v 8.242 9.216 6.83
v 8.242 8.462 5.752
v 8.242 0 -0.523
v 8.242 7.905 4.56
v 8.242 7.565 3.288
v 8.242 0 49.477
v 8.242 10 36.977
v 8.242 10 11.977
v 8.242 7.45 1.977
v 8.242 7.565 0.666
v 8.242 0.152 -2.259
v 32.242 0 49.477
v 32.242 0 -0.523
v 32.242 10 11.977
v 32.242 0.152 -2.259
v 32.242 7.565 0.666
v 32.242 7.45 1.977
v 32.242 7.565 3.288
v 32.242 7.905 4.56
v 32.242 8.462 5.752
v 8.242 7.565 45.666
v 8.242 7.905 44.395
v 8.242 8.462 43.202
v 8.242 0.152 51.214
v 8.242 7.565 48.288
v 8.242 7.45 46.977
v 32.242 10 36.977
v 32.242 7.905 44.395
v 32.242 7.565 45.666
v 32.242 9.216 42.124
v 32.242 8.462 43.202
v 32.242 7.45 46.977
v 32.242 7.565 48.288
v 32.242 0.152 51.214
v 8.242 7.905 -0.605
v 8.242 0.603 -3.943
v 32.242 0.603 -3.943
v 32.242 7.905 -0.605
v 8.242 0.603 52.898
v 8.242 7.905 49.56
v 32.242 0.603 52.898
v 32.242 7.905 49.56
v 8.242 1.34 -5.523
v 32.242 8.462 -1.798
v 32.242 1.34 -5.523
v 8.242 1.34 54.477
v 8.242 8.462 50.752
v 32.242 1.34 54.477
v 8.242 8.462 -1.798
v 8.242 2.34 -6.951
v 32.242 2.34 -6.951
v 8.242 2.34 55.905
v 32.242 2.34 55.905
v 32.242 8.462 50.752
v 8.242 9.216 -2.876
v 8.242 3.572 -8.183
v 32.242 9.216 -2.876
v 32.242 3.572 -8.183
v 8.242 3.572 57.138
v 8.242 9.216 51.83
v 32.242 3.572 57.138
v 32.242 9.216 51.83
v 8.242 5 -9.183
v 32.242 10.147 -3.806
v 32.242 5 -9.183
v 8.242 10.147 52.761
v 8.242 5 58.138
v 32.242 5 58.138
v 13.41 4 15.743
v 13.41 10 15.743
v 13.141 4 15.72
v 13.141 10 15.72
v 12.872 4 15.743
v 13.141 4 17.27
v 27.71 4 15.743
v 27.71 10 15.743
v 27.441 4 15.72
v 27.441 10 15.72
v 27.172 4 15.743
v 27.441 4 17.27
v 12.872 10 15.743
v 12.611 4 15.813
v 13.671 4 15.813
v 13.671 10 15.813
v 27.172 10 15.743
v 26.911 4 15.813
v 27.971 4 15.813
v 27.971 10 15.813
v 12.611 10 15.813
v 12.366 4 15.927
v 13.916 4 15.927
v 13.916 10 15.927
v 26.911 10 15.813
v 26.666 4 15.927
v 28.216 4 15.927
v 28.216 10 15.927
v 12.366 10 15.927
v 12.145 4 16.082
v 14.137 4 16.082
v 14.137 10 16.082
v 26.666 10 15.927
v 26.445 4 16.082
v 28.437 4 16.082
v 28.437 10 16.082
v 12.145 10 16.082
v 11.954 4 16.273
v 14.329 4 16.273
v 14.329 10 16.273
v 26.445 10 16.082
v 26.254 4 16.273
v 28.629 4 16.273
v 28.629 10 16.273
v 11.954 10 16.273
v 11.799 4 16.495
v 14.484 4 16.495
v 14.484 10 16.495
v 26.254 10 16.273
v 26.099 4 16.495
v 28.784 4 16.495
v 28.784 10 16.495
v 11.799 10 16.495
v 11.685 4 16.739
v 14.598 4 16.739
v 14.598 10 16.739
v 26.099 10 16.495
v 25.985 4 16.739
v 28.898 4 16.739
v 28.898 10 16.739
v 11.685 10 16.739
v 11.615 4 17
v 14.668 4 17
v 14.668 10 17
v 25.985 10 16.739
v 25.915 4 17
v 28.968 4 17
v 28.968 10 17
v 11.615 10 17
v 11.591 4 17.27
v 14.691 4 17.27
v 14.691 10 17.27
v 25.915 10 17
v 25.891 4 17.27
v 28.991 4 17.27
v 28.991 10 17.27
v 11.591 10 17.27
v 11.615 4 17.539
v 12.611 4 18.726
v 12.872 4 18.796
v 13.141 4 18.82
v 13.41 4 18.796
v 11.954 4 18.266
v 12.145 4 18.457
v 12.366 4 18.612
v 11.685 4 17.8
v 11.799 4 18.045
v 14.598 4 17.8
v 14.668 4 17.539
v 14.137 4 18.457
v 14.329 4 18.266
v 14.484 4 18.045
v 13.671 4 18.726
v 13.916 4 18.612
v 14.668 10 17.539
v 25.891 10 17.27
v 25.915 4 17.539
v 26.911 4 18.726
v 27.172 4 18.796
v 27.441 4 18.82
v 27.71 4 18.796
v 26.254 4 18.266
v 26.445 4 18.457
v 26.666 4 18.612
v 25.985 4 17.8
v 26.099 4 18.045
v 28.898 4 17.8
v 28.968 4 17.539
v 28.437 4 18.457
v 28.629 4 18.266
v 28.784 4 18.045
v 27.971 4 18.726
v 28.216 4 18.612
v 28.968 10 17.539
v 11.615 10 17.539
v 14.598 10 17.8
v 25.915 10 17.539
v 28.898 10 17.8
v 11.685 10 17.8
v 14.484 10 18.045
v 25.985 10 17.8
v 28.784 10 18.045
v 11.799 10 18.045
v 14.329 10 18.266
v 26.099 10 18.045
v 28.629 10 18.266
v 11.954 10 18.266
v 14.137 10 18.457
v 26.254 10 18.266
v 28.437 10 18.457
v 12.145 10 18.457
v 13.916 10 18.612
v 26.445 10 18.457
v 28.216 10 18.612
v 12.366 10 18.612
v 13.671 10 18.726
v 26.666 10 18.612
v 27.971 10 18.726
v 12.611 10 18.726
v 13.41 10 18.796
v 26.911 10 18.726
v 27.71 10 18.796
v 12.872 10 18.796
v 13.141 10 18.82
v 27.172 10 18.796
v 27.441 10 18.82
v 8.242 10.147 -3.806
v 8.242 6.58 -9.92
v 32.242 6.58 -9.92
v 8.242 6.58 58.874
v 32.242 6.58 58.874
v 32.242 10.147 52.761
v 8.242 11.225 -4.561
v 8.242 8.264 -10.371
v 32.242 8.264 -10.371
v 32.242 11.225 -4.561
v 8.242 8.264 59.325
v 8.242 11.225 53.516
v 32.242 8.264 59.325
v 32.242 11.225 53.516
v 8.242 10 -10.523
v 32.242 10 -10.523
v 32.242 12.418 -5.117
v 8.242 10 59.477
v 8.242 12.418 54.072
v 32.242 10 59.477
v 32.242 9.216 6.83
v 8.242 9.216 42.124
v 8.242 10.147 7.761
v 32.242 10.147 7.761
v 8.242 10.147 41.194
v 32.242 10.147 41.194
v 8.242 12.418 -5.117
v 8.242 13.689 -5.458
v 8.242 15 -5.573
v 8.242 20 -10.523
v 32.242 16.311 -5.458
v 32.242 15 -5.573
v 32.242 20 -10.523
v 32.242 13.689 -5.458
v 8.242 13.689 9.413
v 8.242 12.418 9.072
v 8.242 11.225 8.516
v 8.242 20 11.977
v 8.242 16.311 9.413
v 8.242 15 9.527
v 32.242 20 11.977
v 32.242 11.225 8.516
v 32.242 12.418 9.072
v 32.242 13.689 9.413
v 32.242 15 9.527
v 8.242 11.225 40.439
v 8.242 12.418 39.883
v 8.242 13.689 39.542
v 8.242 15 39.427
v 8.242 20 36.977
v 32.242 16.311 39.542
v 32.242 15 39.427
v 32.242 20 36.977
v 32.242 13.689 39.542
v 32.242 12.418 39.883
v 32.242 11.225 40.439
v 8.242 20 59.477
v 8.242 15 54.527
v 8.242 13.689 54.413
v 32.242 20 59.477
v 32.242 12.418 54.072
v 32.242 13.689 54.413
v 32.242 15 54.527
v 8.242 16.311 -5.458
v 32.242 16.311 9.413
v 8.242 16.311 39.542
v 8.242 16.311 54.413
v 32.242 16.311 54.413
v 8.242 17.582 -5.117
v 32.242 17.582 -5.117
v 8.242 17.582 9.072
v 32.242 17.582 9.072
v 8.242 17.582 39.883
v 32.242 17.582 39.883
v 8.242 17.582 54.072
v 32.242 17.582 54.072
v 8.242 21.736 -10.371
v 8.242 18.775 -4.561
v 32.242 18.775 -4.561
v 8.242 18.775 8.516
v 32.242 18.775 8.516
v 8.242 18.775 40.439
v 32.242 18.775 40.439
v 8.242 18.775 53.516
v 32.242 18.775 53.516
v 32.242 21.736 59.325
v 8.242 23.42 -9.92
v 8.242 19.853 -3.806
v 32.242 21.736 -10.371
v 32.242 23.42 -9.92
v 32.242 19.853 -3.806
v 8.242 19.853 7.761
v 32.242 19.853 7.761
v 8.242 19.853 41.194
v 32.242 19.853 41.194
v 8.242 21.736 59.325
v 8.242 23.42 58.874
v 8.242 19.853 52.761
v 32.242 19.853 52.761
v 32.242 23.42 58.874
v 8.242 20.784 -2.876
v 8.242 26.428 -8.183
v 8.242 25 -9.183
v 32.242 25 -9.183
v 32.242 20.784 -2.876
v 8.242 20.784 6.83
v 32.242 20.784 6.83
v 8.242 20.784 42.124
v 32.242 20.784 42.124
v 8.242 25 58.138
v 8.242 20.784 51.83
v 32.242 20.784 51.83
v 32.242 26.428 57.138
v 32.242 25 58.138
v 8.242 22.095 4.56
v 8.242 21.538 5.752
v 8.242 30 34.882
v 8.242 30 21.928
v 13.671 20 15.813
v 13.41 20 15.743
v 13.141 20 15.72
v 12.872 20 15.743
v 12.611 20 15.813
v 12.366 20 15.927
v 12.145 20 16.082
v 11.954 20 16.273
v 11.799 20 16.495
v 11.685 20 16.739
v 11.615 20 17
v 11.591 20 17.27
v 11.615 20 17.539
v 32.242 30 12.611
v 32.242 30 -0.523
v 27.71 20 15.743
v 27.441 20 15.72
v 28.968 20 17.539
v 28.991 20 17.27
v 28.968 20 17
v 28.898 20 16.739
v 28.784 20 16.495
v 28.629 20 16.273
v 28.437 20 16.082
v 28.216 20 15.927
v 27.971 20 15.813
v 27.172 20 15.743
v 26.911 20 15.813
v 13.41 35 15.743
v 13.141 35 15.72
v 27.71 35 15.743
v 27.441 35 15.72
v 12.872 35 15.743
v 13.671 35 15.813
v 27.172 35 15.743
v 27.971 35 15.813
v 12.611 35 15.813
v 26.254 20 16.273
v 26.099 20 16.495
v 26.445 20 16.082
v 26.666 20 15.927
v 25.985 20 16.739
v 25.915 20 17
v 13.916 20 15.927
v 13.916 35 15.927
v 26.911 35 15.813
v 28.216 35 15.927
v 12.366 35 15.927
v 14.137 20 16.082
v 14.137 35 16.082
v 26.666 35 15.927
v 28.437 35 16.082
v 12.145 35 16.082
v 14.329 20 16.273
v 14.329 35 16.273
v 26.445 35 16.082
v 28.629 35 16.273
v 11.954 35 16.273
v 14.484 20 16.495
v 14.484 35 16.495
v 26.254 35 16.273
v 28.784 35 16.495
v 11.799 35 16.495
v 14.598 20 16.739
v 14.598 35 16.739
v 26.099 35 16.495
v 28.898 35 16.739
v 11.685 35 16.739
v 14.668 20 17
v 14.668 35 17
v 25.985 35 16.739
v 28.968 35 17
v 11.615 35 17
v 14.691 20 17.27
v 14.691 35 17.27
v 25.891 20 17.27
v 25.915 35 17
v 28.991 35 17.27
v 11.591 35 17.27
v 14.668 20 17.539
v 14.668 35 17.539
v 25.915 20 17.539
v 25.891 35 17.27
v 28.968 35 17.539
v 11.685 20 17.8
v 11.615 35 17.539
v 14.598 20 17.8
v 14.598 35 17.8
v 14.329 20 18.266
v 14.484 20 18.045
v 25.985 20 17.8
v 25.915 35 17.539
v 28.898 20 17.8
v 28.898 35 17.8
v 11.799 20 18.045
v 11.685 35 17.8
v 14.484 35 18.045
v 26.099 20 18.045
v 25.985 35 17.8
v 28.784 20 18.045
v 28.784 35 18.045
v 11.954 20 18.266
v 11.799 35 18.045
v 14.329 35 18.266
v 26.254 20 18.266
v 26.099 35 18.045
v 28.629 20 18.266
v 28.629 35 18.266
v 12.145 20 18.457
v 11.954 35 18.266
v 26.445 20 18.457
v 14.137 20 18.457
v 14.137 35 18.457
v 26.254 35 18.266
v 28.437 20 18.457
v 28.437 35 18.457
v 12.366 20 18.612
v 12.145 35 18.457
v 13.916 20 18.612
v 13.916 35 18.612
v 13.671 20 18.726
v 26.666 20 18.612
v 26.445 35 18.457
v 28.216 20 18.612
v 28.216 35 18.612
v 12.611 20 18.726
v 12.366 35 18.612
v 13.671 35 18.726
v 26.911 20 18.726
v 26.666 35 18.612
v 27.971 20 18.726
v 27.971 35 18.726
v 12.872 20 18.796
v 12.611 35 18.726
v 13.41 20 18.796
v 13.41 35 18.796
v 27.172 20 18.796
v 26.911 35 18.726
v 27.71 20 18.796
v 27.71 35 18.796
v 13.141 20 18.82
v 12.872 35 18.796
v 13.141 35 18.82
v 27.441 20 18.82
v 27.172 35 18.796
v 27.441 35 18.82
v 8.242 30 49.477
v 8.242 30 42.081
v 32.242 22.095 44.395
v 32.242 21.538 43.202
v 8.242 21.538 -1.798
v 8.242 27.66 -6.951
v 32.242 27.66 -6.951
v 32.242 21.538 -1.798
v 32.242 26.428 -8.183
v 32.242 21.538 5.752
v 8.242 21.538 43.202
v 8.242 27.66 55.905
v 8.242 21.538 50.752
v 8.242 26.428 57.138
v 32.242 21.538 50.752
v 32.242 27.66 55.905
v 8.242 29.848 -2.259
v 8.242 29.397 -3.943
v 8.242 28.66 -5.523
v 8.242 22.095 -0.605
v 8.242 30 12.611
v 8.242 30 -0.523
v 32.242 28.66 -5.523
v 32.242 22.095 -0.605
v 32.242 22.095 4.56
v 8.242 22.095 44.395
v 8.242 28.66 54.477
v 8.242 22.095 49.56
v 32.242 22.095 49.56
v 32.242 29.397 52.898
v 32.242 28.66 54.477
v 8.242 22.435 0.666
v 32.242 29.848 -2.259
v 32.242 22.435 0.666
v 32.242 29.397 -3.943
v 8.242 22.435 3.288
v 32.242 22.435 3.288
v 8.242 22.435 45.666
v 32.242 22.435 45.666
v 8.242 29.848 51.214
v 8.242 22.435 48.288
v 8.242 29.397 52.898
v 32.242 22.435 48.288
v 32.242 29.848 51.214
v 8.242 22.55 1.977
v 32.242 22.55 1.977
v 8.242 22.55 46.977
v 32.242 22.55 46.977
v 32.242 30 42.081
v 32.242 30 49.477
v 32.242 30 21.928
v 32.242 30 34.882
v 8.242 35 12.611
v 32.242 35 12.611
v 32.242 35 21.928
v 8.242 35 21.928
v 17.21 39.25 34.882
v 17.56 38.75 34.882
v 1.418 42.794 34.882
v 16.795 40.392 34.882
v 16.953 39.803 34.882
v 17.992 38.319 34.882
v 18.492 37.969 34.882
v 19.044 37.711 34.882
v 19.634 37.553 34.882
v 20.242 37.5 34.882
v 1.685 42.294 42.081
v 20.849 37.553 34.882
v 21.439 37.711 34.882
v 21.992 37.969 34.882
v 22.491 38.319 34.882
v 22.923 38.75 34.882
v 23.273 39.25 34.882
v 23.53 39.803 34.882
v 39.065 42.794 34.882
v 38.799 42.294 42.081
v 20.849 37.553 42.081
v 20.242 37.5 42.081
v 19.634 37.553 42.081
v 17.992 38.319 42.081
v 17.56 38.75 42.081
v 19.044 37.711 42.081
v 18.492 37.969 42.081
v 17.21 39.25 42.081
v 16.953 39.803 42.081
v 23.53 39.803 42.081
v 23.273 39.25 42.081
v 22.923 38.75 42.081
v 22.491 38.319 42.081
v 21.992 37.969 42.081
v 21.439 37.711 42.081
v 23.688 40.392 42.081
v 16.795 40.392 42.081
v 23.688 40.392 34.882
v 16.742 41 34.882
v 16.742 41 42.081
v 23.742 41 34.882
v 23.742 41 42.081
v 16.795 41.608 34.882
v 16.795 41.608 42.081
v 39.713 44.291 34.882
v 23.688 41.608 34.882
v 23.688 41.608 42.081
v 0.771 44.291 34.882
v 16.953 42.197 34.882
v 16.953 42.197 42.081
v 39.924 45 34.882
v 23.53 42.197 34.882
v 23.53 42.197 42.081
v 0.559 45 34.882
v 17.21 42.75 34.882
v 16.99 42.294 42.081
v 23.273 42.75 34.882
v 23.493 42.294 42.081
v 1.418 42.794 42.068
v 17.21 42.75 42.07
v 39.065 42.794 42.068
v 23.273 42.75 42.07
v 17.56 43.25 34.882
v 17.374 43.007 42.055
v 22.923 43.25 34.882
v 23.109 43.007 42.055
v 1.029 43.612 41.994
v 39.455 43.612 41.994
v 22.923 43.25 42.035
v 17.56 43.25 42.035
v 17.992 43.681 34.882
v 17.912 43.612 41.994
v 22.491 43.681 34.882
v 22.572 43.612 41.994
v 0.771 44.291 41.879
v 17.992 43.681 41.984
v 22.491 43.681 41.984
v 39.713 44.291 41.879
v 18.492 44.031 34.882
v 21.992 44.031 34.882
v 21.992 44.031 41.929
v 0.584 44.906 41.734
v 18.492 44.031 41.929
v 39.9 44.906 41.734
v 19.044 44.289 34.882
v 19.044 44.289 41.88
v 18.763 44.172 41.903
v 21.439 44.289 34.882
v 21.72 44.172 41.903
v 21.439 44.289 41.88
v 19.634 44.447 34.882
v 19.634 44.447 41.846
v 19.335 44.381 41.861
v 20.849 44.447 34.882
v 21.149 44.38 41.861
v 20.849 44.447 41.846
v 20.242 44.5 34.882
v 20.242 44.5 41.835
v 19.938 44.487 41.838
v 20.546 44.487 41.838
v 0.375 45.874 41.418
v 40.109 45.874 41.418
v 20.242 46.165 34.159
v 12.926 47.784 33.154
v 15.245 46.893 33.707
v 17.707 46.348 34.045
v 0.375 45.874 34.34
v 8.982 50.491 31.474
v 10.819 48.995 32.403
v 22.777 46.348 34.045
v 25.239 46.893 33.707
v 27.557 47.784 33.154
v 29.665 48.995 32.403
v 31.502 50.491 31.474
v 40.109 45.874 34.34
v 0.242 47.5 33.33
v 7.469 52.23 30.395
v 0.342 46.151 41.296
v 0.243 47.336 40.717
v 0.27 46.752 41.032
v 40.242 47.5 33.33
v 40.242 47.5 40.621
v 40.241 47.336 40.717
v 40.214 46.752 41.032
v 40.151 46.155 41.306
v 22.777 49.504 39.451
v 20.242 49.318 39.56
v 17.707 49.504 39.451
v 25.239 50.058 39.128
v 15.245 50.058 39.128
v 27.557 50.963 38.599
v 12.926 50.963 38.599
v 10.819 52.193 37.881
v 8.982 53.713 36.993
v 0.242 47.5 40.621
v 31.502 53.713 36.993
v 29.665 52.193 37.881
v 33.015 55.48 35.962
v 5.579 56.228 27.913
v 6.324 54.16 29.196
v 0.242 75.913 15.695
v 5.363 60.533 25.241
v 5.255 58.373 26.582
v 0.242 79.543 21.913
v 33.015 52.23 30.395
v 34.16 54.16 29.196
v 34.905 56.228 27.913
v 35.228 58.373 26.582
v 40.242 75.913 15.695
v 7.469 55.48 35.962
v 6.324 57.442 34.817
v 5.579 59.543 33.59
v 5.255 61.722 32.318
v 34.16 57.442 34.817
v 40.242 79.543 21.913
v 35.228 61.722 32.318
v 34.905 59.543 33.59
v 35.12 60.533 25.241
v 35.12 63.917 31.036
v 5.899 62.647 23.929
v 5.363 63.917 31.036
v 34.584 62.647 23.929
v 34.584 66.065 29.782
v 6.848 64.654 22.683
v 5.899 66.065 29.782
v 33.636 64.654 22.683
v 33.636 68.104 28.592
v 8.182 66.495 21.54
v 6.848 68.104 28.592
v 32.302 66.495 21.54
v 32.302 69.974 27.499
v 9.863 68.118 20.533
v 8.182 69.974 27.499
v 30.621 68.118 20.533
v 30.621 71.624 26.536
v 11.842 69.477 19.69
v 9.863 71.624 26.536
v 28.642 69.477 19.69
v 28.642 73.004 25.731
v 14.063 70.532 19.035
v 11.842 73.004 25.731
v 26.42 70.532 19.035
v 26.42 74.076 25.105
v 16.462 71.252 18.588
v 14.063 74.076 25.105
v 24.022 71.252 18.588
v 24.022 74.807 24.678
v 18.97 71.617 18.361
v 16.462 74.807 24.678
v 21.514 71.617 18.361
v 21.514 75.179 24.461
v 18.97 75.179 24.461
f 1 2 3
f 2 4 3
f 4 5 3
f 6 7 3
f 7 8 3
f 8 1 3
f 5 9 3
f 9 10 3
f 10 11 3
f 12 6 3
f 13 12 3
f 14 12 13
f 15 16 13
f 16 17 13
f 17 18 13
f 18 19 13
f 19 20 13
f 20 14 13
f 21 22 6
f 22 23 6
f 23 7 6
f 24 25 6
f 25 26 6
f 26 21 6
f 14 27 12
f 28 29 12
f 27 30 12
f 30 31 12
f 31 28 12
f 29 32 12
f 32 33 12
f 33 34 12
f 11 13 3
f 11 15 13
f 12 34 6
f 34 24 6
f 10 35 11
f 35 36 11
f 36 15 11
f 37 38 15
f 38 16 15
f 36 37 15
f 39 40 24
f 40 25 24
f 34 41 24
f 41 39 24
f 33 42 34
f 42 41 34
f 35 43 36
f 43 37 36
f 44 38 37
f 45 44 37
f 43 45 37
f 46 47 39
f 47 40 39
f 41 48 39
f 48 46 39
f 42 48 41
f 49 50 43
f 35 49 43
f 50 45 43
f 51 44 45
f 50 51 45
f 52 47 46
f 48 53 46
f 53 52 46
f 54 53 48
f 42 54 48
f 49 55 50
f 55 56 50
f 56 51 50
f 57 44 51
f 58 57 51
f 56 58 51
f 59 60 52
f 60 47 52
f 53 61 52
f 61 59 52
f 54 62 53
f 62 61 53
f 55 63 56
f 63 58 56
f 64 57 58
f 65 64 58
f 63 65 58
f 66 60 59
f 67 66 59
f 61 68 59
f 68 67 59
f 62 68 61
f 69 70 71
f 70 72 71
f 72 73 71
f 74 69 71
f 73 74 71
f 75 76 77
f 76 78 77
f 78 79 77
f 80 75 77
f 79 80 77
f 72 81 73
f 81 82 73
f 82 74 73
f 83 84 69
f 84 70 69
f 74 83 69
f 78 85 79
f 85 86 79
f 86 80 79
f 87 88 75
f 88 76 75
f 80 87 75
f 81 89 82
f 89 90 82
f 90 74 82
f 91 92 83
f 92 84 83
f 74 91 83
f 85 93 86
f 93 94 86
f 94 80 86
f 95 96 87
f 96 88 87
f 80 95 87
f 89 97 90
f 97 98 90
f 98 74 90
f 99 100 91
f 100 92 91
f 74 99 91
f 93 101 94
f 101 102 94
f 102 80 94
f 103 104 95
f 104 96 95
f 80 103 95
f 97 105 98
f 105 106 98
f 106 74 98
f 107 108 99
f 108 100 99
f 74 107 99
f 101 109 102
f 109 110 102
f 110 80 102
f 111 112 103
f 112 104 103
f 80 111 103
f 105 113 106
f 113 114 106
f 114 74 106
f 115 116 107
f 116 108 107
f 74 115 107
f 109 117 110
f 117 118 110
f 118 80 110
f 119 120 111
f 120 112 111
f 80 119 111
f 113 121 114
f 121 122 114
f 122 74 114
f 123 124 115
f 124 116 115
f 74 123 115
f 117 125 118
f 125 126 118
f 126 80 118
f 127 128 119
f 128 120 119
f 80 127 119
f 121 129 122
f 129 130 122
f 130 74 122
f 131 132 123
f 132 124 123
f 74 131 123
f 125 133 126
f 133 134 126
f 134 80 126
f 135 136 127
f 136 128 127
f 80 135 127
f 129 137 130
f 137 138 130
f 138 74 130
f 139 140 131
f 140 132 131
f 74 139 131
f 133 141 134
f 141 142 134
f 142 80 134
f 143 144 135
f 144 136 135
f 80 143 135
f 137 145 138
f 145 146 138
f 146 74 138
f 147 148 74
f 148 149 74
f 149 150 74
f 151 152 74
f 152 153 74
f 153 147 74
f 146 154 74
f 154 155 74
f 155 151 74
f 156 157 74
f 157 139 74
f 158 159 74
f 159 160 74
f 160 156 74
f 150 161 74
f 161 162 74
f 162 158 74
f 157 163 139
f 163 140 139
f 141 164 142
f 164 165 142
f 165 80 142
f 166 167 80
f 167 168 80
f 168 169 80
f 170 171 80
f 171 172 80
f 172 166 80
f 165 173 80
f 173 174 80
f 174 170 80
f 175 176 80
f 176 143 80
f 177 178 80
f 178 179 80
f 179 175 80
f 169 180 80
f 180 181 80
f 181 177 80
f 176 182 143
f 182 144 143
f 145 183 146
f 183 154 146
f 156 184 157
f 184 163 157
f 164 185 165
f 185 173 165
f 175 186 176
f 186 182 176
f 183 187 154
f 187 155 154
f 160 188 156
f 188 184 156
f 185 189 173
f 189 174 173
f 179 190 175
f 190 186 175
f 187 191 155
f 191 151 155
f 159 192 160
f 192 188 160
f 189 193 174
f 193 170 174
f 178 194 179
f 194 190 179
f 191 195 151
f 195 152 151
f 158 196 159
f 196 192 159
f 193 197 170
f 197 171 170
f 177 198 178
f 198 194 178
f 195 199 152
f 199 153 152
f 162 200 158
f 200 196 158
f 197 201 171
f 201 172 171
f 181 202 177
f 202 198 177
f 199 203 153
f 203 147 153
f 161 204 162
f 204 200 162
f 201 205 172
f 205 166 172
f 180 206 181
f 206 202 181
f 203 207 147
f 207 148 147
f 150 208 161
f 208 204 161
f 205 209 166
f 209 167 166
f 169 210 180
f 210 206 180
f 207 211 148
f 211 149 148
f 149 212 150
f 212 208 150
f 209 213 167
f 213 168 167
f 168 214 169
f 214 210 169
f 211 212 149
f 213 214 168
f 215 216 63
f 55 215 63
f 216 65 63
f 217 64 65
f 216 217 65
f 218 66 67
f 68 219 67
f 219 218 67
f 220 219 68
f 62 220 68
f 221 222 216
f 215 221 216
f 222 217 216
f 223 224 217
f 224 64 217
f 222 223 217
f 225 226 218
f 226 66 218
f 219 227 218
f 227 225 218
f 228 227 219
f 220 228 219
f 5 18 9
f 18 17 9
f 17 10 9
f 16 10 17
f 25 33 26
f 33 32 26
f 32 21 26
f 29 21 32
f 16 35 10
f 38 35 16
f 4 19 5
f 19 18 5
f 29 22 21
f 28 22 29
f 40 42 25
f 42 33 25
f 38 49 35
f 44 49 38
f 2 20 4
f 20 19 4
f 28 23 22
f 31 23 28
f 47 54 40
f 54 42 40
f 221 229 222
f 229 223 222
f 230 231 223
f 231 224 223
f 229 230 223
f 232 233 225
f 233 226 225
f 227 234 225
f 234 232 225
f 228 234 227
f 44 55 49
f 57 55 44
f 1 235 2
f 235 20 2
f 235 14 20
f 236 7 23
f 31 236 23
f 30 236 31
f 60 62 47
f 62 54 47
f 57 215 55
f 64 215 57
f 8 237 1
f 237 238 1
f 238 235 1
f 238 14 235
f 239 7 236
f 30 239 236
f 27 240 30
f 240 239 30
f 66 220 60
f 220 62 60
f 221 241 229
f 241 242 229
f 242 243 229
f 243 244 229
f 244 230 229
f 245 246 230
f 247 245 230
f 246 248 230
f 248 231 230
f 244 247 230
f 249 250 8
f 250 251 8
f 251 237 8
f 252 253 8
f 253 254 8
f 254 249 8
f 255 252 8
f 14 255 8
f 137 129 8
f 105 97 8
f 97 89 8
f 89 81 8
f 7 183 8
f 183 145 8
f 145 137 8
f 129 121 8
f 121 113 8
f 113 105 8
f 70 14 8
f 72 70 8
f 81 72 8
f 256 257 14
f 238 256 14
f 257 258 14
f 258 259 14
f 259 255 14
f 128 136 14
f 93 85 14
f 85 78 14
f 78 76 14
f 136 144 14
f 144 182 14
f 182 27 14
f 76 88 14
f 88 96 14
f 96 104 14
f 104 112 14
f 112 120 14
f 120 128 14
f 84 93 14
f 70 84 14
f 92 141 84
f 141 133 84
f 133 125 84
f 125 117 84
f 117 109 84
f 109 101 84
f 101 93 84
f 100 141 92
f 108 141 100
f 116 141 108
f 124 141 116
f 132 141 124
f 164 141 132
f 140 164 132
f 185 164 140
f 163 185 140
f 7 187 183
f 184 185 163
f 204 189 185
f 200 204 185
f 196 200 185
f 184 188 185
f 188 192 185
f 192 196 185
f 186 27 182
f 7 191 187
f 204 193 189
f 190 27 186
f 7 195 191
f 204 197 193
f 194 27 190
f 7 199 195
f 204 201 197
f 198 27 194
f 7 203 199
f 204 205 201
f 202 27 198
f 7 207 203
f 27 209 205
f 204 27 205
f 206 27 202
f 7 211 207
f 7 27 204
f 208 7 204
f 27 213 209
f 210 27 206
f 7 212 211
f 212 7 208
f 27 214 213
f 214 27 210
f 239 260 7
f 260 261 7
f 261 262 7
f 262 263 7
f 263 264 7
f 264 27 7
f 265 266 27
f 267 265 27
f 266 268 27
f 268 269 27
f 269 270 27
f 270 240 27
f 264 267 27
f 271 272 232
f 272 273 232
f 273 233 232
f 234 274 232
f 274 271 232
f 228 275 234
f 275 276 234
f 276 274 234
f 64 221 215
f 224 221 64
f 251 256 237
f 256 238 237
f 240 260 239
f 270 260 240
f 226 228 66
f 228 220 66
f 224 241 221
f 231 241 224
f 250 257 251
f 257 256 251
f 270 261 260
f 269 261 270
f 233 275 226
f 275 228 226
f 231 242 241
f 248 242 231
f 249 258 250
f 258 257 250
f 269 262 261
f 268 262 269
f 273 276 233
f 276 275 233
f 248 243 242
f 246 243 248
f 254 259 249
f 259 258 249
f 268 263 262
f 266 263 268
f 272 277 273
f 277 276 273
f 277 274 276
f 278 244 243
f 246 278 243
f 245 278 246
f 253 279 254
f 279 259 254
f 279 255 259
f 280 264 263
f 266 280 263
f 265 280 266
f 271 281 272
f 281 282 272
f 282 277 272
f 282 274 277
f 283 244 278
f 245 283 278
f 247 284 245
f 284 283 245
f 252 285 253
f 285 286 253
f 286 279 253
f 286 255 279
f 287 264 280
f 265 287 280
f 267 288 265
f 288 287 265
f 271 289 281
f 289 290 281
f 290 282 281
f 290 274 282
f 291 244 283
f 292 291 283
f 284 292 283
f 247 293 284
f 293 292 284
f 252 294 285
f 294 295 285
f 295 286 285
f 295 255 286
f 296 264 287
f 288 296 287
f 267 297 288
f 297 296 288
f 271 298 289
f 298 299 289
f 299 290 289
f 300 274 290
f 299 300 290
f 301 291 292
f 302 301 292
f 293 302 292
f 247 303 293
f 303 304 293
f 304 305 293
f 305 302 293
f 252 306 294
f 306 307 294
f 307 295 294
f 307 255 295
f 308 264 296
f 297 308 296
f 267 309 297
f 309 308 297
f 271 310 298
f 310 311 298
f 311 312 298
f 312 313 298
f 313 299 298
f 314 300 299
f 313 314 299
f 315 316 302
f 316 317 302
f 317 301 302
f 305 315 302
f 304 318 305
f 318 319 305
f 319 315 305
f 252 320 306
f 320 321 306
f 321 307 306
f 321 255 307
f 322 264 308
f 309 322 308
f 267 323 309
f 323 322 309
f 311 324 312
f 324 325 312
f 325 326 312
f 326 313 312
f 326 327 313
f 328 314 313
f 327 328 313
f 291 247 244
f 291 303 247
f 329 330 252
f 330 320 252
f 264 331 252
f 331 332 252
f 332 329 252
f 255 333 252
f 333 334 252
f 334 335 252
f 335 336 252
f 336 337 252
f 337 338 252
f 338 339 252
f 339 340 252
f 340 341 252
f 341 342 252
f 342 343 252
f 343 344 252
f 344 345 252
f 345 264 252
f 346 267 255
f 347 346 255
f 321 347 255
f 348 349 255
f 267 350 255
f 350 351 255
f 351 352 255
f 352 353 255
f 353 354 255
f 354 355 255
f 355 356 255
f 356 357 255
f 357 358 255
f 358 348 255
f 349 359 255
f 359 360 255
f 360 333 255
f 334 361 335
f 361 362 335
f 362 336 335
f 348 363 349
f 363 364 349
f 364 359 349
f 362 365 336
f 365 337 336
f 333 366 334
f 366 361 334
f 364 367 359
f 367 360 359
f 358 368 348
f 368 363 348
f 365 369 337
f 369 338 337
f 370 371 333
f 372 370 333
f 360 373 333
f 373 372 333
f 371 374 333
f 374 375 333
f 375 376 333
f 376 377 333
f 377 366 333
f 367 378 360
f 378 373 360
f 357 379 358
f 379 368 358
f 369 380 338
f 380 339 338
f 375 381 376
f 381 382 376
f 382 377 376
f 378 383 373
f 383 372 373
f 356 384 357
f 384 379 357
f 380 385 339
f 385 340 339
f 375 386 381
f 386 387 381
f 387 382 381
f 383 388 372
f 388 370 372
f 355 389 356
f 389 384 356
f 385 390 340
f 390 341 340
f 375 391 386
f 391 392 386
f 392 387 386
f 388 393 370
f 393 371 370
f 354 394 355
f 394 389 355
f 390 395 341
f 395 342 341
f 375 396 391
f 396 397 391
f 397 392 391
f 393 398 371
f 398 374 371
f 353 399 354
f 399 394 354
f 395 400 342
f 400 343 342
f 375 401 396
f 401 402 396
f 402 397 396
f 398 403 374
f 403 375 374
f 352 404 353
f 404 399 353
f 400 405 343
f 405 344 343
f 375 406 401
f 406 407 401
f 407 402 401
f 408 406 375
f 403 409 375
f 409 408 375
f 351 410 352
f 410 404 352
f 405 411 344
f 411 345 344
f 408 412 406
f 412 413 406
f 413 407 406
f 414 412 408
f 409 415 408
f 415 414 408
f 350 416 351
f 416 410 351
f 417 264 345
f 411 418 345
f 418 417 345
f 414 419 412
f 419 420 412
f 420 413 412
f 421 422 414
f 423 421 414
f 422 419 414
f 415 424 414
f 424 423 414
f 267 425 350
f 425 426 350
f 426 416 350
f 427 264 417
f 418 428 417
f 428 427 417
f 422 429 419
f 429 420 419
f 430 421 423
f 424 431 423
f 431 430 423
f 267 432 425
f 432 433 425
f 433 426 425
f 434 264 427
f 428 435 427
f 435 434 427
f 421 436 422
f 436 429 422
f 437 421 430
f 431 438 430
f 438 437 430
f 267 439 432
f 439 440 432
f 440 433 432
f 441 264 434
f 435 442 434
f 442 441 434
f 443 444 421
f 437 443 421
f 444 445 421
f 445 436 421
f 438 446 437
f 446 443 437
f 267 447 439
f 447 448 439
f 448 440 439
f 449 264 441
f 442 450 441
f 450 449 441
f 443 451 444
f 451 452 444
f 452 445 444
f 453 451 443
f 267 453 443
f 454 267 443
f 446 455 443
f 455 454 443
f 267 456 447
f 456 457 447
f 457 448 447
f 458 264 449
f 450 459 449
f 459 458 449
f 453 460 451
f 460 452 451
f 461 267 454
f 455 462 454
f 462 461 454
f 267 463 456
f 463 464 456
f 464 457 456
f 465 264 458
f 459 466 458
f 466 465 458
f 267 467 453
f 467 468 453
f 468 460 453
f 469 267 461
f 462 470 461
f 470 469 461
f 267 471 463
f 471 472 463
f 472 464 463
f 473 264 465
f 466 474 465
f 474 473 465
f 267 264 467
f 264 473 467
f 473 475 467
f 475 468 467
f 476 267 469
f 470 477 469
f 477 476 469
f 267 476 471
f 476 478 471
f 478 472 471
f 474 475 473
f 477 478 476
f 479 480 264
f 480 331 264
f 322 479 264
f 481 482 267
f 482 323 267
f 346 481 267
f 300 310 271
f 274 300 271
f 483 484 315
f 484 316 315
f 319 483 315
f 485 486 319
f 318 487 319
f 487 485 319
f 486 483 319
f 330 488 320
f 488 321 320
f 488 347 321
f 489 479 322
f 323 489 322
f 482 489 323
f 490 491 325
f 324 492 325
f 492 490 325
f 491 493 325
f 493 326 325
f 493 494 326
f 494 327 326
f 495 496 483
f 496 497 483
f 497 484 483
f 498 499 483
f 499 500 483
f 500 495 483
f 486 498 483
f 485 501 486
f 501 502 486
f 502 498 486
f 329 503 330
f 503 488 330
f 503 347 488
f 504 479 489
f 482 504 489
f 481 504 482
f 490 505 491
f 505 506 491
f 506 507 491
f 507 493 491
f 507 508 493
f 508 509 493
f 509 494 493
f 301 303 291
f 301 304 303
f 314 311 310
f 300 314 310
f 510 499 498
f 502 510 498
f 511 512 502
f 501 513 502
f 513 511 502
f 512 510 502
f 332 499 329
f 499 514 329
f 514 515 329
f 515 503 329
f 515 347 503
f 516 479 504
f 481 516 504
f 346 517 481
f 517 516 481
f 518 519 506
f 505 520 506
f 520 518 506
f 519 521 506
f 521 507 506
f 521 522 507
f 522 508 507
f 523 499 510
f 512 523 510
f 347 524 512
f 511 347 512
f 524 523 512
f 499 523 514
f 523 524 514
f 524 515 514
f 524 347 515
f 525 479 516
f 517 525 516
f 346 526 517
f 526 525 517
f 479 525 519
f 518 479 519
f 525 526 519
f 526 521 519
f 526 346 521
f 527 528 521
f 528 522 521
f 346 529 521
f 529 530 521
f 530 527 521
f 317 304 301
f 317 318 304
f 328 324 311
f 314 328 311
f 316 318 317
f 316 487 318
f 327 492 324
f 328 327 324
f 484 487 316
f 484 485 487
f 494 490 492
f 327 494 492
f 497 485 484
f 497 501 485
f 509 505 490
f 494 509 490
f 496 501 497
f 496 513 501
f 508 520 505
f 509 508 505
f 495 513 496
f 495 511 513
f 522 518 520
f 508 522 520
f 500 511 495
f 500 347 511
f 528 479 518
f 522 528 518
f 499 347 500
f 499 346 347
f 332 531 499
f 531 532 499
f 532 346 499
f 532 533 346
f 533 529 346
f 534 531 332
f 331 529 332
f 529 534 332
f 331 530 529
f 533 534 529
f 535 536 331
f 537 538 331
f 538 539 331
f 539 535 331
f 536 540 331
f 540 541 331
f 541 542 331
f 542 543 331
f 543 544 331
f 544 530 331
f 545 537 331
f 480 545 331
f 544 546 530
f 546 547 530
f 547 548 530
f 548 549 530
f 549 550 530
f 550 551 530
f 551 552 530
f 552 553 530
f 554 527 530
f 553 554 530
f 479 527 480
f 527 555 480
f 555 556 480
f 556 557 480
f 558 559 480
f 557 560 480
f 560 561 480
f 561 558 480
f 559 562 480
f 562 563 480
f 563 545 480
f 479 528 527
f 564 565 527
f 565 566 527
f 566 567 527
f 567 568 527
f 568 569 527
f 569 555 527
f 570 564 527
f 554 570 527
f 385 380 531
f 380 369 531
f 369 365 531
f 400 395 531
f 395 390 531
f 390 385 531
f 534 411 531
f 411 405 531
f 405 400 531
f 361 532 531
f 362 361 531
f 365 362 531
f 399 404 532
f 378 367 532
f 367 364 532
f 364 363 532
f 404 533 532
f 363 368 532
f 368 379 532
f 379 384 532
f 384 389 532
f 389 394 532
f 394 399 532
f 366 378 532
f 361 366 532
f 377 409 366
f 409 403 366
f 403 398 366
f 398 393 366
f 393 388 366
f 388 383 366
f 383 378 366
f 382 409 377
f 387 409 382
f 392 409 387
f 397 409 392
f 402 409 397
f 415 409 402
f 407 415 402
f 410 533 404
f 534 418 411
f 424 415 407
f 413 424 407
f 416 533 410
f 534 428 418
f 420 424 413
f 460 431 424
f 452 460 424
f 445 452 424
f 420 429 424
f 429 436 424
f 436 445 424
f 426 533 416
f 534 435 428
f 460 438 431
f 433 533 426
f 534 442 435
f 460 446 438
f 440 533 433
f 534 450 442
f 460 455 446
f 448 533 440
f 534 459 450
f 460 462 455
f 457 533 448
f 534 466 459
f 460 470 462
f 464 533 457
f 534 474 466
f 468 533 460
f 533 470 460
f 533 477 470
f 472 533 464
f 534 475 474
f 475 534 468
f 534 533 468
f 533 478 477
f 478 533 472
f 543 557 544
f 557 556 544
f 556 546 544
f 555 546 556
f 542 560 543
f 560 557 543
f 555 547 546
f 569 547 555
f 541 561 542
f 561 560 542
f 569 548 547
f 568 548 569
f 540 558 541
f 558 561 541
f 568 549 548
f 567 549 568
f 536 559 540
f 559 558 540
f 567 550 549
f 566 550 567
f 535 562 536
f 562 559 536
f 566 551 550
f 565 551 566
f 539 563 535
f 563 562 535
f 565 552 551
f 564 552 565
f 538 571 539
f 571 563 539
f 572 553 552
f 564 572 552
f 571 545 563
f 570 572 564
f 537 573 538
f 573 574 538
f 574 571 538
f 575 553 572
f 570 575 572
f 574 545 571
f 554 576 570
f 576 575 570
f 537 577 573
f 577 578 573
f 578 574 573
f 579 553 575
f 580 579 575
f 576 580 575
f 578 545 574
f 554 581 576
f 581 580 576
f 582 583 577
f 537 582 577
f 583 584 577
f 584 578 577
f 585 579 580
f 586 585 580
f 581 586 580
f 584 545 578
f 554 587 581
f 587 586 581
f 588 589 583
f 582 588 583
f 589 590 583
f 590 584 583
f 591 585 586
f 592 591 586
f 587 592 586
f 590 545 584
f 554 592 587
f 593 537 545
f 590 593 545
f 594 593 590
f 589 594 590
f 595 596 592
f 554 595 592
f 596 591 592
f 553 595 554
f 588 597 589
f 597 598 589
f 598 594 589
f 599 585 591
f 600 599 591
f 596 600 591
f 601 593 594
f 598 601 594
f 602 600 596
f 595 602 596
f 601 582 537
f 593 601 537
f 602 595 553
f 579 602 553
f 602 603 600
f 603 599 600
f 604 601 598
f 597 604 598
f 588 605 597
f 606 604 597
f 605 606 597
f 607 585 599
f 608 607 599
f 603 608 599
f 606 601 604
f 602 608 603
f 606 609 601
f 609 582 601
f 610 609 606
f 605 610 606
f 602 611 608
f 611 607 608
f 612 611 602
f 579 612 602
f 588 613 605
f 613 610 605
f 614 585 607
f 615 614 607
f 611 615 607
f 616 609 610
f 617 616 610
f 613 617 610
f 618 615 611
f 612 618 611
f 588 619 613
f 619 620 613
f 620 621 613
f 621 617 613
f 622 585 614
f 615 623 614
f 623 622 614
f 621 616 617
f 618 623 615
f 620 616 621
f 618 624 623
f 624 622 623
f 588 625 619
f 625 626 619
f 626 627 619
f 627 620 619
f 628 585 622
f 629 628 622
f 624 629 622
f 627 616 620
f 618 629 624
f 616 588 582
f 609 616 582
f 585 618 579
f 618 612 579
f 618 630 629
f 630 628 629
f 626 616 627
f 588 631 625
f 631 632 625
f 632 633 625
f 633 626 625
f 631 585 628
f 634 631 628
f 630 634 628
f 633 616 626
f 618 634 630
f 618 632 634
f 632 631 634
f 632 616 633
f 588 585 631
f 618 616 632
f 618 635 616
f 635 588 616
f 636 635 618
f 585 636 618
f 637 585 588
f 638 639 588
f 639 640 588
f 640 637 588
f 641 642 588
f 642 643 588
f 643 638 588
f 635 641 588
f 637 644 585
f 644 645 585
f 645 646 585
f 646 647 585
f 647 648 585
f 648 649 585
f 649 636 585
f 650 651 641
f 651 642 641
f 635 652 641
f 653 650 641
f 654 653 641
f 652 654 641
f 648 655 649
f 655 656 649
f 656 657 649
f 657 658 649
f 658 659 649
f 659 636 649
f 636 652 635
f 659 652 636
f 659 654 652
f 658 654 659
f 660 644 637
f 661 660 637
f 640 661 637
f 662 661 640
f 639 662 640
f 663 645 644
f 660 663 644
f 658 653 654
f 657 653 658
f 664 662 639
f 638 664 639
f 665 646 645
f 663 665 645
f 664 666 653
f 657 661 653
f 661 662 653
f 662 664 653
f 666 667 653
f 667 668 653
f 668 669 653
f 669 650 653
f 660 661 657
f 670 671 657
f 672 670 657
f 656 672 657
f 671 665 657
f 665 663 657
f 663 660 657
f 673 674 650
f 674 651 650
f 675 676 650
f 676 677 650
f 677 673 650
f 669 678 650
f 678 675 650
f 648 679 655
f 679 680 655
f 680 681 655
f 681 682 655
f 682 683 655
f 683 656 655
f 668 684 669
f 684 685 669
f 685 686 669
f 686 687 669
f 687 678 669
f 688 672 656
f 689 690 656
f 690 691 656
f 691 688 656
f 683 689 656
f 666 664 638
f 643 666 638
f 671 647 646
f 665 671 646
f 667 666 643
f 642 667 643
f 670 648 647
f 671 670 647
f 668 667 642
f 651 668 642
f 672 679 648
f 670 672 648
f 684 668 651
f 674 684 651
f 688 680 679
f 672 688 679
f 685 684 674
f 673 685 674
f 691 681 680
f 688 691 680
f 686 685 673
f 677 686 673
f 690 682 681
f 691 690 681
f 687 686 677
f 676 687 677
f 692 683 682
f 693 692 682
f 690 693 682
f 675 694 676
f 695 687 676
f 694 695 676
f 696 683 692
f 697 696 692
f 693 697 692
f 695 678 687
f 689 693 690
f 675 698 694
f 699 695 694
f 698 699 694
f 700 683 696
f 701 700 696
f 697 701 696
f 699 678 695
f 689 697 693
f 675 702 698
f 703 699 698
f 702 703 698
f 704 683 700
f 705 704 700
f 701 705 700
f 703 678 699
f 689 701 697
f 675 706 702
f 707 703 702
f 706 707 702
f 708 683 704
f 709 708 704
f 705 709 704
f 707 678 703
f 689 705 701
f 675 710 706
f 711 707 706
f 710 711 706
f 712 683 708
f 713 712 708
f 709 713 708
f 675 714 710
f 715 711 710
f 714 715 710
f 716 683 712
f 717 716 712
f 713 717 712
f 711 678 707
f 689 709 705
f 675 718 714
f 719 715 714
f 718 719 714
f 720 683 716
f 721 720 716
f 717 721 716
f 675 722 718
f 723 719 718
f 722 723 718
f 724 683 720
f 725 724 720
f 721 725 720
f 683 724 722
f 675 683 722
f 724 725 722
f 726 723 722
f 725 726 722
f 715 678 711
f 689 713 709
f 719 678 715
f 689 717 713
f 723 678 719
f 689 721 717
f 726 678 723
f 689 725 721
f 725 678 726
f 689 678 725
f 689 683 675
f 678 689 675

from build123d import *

# Parameters (mm, degrees)
SKETCH_1_W          = 24
SKETCH_1_H          = 70
EXTRUDE_1_DEPTH     = 30
SKETCH_2_R          = 7.55
CUT_EXTRUDE_1_DEPTH = 71.806439045
SKETCH_3_W          = 25
SKETCH_3_H          = 10
CUT_EXTRUDE_2_DEPTH = 71.806439045
SKETCH_4_W          = 24
SKETCH_4_H          = 9.317438099
EXTRUDE_2_DEPTH     = 5
SKETCH_5_R          = 1.55
CUT_EXTRUDE_3_DEPTH = 31
FILLET_1_R          = 10
SKETCH_6_W          = 24
SKETCH_6_H          = 7.198600856
EXTRUDE_3_DEPTH     = 15
EXTRUDE_4_DEPTH     = 24
EXTRUDE_5_DEPTH     = 8
EXTRUDE_6_DEPTH     = 8
SKETCH_10_R         = 15
CUT_EXTRUDE_4_DEPTH = 16
EXTRUDE_7_DEPTH     = 7.198600855
EXTRUDE_8_DEPTH     = 7.198600855
FILLET_2_R          = 10
FILLET_3_R          = 10
SKETCH_14_R         = 3.5
CUT_EXTRUDE_5_DEPTH = 13


with BuildPart() as part:
    # 草图1 → 凸台-拉伸1 (new body)
    with BuildSketch(Plane(origin=(0, 0, 0), x_dir=(1, 0, 0), z_dir=(0, 1, 0))):
        with Locations((20.241900648, -24.477321814)):
            Rectangle(SKETCH_1_W, SKETCH_1_H)
    extrude(amount=EXTRUDE_1_DEPTH)

    # 草图2 → 切除-拉伸1 (cut, through all)
    with BuildSketch(Plane(origin=(32.241900648, 0, 0), x_dir=(0, 0, -1), z_dir=(1, 0, 0))):
        with Locations((-46.977321814, 15)):
            Circle(SKETCH_2_R)
        with Locations((-1.977321814, 15)):
            Circle(SKETCH_2_R)
    extrude(amount=-CUT_EXTRUDE_1_DEPTH, mode=Mode.SUBTRACT)

    # 草图3 → 切除-拉伸2 (cut, through all)
    with BuildSketch(Plane(origin=(32.241900648, 0, 0), x_dir=(0, 0, -1), z_dir=(1, 0, 0))):
        with Locations((-24.477321814, 15)):
            Rectangle(SKETCH_3_W, SKETCH_3_H)
    extrude(amount=-CUT_EXTRUDE_2_DEPTH, mode=Mode.SUBTRACT)

    # 草图4 → 凸台-拉伸2 (add)
    with BuildSketch(Plane(origin=(0, 30, 0), x_dir=(1, 0, 0), z_dir=(0, 1, 0))):
        with Locations((20.241900648, -17.269567559)):
            Rectangle(SKETCH_4_W, SKETCH_4_H)
    extrude(amount=EXTRUDE_2_DEPTH)

    # 草图5 → 切除-拉伸3 (cut)
    with BuildSketch(Plane(origin=(0, 35, 0), x_dir=(1, 0, 0), z_dir=(0, 1, 0))):
        with Locations(Location((27.441174565, -17.269567558, 0), (0, 0, 270))):
            Circle(SKETCH_5_R)
        with Locations(Location((13.141174565, -17.269567558, 0), (0, 0, 270))):
            Circle(SKETCH_5_R)
    extrude(amount=-CUT_EXTRUDE_3_DEPTH, mode=Mode.SUBTRACT)

    # 圆角1
    fillet_1_edges = [part.edges().sort_by_distance(p)[0] for p in [
        (20.241900648, 30, -10.522678186),
        (20.241900648, 0, -10.522678186),
        (20.241900648, 0, 59.477321814),
        (20.241900648, 30, 59.477321814),
    ]]
    fillet(fillet_1_edges, radius=FILLET_1_R)

    # 草图6 → 凸台-拉伸3 (add)
    with BuildSketch(Plane(origin=(0, 30, 0), x_dir=(1, 0, 0), z_dir=(0, 1, 0))):
        with Locations((20.241900648, -38.481509693)):
            Rectangle(SKETCH_6_W, SKETCH_6_H)
    extrude(amount=EXTRUDE_3_DEPTH)

    # 草图7 → 凸台-拉伸4 (add)
    with BuildSketch(Plane.ZY.offset(-8.241900648)):
        Polygon((42.080810121, 45), (21.912574503, 79.54333904), (15.694773475, 75.913056629), (34.882209265, 45), align=None)
    extrude(amount=-EXTRUDE_4_DEPTH)

    # 草图8 → 凸台-拉伸5 (add)
    with BuildSketch(Plane.ZY.offset(-8.241900648)):
        Polygon((42.080810121, 45), (34.882209265, 45), (15.694773475, 75.913056629), (21.912574503, 79.54333904), align=None)
    extrude(amount=EXTRUDE_5_DEPTH)

    # 草图9 → 凸台-拉伸6 (add)
    with BuildSketch(Plane(origin=(32.241900648, 0, 0), x_dir=(0, 0, -1), z_dir=(1, 0, 0))):
        Polygon((-42.080810121, 45), (-34.882209265, 45), (-15.694773475, 75.913056629), (-21.912574503, 79.54333904), align=None)
    extrude(amount=EXTRUDE_6_DEPTH)

    # 草图10 → 切除-拉伸4 (cut)
    with BuildSketch(Plane(origin=(0, 29.763050525, 50.976950321), x_dir=(1, 0, 0), z_dir=(0, 0.5042058904481267, 0.8635834760099408))):
        with Locations(Location((20.241900648, 37.643864083, 0), (0, 0, 270))):
            Circle(SKETCH_10_R)
    extrude(amount=-CUT_EXTRUDE_4_DEPTH, mode=Mode.SUBTRACT)

    # 草图12 → 凸台-拉伸7 (add)
    with BuildSketch(Plane.XY.offset(42.080810121)):
        Polygon((0.241900648, 45), (8.241900648, 45), (8.241900648, 30), align=None)
    extrude(amount=-EXTRUDE_7_DEPTH)

    # 草图13 → 凸台-拉伸8 (add)
    with BuildSketch(Plane.XY.offset(42.080810121)):
        Polygon((40.241900648, 45), (32.241900648, 45), (32.241900648, 30), align=None)
    extrude(amount=-EXTRUDE_8_DEPTH)

    # 圆角2
    fillet_2_edges = [part.edges().sort_by_distance(p)[0] for p in [
        (20.241900648, 45, 42.080810121),
    ]]
    fillet(fillet_2_edges, radius=FILLET_2_R)

    # 圆角3
    fillet_3_edges = [part.edges().sort_by_distance(p)[0] for p in [
        (0.241900648, 45, 38.295029227),
        (40.241900648, 45, 38.295029227),
    ]]
    fillet(fillet_3_edges, radius=FILLET_3_R)

    # 草图14 → 切除-拉伸5 (cut)
    with BuildSketch(Plane.XY.offset(42.080810121)):
        with Locations((20.241537607, 41)):
            Circle(SKETCH_14_R)
    extrude(amount=-CUT_EXTRUDE_5_DEPTH, mode=Mode.SUBTRACT)


solid = part.part
